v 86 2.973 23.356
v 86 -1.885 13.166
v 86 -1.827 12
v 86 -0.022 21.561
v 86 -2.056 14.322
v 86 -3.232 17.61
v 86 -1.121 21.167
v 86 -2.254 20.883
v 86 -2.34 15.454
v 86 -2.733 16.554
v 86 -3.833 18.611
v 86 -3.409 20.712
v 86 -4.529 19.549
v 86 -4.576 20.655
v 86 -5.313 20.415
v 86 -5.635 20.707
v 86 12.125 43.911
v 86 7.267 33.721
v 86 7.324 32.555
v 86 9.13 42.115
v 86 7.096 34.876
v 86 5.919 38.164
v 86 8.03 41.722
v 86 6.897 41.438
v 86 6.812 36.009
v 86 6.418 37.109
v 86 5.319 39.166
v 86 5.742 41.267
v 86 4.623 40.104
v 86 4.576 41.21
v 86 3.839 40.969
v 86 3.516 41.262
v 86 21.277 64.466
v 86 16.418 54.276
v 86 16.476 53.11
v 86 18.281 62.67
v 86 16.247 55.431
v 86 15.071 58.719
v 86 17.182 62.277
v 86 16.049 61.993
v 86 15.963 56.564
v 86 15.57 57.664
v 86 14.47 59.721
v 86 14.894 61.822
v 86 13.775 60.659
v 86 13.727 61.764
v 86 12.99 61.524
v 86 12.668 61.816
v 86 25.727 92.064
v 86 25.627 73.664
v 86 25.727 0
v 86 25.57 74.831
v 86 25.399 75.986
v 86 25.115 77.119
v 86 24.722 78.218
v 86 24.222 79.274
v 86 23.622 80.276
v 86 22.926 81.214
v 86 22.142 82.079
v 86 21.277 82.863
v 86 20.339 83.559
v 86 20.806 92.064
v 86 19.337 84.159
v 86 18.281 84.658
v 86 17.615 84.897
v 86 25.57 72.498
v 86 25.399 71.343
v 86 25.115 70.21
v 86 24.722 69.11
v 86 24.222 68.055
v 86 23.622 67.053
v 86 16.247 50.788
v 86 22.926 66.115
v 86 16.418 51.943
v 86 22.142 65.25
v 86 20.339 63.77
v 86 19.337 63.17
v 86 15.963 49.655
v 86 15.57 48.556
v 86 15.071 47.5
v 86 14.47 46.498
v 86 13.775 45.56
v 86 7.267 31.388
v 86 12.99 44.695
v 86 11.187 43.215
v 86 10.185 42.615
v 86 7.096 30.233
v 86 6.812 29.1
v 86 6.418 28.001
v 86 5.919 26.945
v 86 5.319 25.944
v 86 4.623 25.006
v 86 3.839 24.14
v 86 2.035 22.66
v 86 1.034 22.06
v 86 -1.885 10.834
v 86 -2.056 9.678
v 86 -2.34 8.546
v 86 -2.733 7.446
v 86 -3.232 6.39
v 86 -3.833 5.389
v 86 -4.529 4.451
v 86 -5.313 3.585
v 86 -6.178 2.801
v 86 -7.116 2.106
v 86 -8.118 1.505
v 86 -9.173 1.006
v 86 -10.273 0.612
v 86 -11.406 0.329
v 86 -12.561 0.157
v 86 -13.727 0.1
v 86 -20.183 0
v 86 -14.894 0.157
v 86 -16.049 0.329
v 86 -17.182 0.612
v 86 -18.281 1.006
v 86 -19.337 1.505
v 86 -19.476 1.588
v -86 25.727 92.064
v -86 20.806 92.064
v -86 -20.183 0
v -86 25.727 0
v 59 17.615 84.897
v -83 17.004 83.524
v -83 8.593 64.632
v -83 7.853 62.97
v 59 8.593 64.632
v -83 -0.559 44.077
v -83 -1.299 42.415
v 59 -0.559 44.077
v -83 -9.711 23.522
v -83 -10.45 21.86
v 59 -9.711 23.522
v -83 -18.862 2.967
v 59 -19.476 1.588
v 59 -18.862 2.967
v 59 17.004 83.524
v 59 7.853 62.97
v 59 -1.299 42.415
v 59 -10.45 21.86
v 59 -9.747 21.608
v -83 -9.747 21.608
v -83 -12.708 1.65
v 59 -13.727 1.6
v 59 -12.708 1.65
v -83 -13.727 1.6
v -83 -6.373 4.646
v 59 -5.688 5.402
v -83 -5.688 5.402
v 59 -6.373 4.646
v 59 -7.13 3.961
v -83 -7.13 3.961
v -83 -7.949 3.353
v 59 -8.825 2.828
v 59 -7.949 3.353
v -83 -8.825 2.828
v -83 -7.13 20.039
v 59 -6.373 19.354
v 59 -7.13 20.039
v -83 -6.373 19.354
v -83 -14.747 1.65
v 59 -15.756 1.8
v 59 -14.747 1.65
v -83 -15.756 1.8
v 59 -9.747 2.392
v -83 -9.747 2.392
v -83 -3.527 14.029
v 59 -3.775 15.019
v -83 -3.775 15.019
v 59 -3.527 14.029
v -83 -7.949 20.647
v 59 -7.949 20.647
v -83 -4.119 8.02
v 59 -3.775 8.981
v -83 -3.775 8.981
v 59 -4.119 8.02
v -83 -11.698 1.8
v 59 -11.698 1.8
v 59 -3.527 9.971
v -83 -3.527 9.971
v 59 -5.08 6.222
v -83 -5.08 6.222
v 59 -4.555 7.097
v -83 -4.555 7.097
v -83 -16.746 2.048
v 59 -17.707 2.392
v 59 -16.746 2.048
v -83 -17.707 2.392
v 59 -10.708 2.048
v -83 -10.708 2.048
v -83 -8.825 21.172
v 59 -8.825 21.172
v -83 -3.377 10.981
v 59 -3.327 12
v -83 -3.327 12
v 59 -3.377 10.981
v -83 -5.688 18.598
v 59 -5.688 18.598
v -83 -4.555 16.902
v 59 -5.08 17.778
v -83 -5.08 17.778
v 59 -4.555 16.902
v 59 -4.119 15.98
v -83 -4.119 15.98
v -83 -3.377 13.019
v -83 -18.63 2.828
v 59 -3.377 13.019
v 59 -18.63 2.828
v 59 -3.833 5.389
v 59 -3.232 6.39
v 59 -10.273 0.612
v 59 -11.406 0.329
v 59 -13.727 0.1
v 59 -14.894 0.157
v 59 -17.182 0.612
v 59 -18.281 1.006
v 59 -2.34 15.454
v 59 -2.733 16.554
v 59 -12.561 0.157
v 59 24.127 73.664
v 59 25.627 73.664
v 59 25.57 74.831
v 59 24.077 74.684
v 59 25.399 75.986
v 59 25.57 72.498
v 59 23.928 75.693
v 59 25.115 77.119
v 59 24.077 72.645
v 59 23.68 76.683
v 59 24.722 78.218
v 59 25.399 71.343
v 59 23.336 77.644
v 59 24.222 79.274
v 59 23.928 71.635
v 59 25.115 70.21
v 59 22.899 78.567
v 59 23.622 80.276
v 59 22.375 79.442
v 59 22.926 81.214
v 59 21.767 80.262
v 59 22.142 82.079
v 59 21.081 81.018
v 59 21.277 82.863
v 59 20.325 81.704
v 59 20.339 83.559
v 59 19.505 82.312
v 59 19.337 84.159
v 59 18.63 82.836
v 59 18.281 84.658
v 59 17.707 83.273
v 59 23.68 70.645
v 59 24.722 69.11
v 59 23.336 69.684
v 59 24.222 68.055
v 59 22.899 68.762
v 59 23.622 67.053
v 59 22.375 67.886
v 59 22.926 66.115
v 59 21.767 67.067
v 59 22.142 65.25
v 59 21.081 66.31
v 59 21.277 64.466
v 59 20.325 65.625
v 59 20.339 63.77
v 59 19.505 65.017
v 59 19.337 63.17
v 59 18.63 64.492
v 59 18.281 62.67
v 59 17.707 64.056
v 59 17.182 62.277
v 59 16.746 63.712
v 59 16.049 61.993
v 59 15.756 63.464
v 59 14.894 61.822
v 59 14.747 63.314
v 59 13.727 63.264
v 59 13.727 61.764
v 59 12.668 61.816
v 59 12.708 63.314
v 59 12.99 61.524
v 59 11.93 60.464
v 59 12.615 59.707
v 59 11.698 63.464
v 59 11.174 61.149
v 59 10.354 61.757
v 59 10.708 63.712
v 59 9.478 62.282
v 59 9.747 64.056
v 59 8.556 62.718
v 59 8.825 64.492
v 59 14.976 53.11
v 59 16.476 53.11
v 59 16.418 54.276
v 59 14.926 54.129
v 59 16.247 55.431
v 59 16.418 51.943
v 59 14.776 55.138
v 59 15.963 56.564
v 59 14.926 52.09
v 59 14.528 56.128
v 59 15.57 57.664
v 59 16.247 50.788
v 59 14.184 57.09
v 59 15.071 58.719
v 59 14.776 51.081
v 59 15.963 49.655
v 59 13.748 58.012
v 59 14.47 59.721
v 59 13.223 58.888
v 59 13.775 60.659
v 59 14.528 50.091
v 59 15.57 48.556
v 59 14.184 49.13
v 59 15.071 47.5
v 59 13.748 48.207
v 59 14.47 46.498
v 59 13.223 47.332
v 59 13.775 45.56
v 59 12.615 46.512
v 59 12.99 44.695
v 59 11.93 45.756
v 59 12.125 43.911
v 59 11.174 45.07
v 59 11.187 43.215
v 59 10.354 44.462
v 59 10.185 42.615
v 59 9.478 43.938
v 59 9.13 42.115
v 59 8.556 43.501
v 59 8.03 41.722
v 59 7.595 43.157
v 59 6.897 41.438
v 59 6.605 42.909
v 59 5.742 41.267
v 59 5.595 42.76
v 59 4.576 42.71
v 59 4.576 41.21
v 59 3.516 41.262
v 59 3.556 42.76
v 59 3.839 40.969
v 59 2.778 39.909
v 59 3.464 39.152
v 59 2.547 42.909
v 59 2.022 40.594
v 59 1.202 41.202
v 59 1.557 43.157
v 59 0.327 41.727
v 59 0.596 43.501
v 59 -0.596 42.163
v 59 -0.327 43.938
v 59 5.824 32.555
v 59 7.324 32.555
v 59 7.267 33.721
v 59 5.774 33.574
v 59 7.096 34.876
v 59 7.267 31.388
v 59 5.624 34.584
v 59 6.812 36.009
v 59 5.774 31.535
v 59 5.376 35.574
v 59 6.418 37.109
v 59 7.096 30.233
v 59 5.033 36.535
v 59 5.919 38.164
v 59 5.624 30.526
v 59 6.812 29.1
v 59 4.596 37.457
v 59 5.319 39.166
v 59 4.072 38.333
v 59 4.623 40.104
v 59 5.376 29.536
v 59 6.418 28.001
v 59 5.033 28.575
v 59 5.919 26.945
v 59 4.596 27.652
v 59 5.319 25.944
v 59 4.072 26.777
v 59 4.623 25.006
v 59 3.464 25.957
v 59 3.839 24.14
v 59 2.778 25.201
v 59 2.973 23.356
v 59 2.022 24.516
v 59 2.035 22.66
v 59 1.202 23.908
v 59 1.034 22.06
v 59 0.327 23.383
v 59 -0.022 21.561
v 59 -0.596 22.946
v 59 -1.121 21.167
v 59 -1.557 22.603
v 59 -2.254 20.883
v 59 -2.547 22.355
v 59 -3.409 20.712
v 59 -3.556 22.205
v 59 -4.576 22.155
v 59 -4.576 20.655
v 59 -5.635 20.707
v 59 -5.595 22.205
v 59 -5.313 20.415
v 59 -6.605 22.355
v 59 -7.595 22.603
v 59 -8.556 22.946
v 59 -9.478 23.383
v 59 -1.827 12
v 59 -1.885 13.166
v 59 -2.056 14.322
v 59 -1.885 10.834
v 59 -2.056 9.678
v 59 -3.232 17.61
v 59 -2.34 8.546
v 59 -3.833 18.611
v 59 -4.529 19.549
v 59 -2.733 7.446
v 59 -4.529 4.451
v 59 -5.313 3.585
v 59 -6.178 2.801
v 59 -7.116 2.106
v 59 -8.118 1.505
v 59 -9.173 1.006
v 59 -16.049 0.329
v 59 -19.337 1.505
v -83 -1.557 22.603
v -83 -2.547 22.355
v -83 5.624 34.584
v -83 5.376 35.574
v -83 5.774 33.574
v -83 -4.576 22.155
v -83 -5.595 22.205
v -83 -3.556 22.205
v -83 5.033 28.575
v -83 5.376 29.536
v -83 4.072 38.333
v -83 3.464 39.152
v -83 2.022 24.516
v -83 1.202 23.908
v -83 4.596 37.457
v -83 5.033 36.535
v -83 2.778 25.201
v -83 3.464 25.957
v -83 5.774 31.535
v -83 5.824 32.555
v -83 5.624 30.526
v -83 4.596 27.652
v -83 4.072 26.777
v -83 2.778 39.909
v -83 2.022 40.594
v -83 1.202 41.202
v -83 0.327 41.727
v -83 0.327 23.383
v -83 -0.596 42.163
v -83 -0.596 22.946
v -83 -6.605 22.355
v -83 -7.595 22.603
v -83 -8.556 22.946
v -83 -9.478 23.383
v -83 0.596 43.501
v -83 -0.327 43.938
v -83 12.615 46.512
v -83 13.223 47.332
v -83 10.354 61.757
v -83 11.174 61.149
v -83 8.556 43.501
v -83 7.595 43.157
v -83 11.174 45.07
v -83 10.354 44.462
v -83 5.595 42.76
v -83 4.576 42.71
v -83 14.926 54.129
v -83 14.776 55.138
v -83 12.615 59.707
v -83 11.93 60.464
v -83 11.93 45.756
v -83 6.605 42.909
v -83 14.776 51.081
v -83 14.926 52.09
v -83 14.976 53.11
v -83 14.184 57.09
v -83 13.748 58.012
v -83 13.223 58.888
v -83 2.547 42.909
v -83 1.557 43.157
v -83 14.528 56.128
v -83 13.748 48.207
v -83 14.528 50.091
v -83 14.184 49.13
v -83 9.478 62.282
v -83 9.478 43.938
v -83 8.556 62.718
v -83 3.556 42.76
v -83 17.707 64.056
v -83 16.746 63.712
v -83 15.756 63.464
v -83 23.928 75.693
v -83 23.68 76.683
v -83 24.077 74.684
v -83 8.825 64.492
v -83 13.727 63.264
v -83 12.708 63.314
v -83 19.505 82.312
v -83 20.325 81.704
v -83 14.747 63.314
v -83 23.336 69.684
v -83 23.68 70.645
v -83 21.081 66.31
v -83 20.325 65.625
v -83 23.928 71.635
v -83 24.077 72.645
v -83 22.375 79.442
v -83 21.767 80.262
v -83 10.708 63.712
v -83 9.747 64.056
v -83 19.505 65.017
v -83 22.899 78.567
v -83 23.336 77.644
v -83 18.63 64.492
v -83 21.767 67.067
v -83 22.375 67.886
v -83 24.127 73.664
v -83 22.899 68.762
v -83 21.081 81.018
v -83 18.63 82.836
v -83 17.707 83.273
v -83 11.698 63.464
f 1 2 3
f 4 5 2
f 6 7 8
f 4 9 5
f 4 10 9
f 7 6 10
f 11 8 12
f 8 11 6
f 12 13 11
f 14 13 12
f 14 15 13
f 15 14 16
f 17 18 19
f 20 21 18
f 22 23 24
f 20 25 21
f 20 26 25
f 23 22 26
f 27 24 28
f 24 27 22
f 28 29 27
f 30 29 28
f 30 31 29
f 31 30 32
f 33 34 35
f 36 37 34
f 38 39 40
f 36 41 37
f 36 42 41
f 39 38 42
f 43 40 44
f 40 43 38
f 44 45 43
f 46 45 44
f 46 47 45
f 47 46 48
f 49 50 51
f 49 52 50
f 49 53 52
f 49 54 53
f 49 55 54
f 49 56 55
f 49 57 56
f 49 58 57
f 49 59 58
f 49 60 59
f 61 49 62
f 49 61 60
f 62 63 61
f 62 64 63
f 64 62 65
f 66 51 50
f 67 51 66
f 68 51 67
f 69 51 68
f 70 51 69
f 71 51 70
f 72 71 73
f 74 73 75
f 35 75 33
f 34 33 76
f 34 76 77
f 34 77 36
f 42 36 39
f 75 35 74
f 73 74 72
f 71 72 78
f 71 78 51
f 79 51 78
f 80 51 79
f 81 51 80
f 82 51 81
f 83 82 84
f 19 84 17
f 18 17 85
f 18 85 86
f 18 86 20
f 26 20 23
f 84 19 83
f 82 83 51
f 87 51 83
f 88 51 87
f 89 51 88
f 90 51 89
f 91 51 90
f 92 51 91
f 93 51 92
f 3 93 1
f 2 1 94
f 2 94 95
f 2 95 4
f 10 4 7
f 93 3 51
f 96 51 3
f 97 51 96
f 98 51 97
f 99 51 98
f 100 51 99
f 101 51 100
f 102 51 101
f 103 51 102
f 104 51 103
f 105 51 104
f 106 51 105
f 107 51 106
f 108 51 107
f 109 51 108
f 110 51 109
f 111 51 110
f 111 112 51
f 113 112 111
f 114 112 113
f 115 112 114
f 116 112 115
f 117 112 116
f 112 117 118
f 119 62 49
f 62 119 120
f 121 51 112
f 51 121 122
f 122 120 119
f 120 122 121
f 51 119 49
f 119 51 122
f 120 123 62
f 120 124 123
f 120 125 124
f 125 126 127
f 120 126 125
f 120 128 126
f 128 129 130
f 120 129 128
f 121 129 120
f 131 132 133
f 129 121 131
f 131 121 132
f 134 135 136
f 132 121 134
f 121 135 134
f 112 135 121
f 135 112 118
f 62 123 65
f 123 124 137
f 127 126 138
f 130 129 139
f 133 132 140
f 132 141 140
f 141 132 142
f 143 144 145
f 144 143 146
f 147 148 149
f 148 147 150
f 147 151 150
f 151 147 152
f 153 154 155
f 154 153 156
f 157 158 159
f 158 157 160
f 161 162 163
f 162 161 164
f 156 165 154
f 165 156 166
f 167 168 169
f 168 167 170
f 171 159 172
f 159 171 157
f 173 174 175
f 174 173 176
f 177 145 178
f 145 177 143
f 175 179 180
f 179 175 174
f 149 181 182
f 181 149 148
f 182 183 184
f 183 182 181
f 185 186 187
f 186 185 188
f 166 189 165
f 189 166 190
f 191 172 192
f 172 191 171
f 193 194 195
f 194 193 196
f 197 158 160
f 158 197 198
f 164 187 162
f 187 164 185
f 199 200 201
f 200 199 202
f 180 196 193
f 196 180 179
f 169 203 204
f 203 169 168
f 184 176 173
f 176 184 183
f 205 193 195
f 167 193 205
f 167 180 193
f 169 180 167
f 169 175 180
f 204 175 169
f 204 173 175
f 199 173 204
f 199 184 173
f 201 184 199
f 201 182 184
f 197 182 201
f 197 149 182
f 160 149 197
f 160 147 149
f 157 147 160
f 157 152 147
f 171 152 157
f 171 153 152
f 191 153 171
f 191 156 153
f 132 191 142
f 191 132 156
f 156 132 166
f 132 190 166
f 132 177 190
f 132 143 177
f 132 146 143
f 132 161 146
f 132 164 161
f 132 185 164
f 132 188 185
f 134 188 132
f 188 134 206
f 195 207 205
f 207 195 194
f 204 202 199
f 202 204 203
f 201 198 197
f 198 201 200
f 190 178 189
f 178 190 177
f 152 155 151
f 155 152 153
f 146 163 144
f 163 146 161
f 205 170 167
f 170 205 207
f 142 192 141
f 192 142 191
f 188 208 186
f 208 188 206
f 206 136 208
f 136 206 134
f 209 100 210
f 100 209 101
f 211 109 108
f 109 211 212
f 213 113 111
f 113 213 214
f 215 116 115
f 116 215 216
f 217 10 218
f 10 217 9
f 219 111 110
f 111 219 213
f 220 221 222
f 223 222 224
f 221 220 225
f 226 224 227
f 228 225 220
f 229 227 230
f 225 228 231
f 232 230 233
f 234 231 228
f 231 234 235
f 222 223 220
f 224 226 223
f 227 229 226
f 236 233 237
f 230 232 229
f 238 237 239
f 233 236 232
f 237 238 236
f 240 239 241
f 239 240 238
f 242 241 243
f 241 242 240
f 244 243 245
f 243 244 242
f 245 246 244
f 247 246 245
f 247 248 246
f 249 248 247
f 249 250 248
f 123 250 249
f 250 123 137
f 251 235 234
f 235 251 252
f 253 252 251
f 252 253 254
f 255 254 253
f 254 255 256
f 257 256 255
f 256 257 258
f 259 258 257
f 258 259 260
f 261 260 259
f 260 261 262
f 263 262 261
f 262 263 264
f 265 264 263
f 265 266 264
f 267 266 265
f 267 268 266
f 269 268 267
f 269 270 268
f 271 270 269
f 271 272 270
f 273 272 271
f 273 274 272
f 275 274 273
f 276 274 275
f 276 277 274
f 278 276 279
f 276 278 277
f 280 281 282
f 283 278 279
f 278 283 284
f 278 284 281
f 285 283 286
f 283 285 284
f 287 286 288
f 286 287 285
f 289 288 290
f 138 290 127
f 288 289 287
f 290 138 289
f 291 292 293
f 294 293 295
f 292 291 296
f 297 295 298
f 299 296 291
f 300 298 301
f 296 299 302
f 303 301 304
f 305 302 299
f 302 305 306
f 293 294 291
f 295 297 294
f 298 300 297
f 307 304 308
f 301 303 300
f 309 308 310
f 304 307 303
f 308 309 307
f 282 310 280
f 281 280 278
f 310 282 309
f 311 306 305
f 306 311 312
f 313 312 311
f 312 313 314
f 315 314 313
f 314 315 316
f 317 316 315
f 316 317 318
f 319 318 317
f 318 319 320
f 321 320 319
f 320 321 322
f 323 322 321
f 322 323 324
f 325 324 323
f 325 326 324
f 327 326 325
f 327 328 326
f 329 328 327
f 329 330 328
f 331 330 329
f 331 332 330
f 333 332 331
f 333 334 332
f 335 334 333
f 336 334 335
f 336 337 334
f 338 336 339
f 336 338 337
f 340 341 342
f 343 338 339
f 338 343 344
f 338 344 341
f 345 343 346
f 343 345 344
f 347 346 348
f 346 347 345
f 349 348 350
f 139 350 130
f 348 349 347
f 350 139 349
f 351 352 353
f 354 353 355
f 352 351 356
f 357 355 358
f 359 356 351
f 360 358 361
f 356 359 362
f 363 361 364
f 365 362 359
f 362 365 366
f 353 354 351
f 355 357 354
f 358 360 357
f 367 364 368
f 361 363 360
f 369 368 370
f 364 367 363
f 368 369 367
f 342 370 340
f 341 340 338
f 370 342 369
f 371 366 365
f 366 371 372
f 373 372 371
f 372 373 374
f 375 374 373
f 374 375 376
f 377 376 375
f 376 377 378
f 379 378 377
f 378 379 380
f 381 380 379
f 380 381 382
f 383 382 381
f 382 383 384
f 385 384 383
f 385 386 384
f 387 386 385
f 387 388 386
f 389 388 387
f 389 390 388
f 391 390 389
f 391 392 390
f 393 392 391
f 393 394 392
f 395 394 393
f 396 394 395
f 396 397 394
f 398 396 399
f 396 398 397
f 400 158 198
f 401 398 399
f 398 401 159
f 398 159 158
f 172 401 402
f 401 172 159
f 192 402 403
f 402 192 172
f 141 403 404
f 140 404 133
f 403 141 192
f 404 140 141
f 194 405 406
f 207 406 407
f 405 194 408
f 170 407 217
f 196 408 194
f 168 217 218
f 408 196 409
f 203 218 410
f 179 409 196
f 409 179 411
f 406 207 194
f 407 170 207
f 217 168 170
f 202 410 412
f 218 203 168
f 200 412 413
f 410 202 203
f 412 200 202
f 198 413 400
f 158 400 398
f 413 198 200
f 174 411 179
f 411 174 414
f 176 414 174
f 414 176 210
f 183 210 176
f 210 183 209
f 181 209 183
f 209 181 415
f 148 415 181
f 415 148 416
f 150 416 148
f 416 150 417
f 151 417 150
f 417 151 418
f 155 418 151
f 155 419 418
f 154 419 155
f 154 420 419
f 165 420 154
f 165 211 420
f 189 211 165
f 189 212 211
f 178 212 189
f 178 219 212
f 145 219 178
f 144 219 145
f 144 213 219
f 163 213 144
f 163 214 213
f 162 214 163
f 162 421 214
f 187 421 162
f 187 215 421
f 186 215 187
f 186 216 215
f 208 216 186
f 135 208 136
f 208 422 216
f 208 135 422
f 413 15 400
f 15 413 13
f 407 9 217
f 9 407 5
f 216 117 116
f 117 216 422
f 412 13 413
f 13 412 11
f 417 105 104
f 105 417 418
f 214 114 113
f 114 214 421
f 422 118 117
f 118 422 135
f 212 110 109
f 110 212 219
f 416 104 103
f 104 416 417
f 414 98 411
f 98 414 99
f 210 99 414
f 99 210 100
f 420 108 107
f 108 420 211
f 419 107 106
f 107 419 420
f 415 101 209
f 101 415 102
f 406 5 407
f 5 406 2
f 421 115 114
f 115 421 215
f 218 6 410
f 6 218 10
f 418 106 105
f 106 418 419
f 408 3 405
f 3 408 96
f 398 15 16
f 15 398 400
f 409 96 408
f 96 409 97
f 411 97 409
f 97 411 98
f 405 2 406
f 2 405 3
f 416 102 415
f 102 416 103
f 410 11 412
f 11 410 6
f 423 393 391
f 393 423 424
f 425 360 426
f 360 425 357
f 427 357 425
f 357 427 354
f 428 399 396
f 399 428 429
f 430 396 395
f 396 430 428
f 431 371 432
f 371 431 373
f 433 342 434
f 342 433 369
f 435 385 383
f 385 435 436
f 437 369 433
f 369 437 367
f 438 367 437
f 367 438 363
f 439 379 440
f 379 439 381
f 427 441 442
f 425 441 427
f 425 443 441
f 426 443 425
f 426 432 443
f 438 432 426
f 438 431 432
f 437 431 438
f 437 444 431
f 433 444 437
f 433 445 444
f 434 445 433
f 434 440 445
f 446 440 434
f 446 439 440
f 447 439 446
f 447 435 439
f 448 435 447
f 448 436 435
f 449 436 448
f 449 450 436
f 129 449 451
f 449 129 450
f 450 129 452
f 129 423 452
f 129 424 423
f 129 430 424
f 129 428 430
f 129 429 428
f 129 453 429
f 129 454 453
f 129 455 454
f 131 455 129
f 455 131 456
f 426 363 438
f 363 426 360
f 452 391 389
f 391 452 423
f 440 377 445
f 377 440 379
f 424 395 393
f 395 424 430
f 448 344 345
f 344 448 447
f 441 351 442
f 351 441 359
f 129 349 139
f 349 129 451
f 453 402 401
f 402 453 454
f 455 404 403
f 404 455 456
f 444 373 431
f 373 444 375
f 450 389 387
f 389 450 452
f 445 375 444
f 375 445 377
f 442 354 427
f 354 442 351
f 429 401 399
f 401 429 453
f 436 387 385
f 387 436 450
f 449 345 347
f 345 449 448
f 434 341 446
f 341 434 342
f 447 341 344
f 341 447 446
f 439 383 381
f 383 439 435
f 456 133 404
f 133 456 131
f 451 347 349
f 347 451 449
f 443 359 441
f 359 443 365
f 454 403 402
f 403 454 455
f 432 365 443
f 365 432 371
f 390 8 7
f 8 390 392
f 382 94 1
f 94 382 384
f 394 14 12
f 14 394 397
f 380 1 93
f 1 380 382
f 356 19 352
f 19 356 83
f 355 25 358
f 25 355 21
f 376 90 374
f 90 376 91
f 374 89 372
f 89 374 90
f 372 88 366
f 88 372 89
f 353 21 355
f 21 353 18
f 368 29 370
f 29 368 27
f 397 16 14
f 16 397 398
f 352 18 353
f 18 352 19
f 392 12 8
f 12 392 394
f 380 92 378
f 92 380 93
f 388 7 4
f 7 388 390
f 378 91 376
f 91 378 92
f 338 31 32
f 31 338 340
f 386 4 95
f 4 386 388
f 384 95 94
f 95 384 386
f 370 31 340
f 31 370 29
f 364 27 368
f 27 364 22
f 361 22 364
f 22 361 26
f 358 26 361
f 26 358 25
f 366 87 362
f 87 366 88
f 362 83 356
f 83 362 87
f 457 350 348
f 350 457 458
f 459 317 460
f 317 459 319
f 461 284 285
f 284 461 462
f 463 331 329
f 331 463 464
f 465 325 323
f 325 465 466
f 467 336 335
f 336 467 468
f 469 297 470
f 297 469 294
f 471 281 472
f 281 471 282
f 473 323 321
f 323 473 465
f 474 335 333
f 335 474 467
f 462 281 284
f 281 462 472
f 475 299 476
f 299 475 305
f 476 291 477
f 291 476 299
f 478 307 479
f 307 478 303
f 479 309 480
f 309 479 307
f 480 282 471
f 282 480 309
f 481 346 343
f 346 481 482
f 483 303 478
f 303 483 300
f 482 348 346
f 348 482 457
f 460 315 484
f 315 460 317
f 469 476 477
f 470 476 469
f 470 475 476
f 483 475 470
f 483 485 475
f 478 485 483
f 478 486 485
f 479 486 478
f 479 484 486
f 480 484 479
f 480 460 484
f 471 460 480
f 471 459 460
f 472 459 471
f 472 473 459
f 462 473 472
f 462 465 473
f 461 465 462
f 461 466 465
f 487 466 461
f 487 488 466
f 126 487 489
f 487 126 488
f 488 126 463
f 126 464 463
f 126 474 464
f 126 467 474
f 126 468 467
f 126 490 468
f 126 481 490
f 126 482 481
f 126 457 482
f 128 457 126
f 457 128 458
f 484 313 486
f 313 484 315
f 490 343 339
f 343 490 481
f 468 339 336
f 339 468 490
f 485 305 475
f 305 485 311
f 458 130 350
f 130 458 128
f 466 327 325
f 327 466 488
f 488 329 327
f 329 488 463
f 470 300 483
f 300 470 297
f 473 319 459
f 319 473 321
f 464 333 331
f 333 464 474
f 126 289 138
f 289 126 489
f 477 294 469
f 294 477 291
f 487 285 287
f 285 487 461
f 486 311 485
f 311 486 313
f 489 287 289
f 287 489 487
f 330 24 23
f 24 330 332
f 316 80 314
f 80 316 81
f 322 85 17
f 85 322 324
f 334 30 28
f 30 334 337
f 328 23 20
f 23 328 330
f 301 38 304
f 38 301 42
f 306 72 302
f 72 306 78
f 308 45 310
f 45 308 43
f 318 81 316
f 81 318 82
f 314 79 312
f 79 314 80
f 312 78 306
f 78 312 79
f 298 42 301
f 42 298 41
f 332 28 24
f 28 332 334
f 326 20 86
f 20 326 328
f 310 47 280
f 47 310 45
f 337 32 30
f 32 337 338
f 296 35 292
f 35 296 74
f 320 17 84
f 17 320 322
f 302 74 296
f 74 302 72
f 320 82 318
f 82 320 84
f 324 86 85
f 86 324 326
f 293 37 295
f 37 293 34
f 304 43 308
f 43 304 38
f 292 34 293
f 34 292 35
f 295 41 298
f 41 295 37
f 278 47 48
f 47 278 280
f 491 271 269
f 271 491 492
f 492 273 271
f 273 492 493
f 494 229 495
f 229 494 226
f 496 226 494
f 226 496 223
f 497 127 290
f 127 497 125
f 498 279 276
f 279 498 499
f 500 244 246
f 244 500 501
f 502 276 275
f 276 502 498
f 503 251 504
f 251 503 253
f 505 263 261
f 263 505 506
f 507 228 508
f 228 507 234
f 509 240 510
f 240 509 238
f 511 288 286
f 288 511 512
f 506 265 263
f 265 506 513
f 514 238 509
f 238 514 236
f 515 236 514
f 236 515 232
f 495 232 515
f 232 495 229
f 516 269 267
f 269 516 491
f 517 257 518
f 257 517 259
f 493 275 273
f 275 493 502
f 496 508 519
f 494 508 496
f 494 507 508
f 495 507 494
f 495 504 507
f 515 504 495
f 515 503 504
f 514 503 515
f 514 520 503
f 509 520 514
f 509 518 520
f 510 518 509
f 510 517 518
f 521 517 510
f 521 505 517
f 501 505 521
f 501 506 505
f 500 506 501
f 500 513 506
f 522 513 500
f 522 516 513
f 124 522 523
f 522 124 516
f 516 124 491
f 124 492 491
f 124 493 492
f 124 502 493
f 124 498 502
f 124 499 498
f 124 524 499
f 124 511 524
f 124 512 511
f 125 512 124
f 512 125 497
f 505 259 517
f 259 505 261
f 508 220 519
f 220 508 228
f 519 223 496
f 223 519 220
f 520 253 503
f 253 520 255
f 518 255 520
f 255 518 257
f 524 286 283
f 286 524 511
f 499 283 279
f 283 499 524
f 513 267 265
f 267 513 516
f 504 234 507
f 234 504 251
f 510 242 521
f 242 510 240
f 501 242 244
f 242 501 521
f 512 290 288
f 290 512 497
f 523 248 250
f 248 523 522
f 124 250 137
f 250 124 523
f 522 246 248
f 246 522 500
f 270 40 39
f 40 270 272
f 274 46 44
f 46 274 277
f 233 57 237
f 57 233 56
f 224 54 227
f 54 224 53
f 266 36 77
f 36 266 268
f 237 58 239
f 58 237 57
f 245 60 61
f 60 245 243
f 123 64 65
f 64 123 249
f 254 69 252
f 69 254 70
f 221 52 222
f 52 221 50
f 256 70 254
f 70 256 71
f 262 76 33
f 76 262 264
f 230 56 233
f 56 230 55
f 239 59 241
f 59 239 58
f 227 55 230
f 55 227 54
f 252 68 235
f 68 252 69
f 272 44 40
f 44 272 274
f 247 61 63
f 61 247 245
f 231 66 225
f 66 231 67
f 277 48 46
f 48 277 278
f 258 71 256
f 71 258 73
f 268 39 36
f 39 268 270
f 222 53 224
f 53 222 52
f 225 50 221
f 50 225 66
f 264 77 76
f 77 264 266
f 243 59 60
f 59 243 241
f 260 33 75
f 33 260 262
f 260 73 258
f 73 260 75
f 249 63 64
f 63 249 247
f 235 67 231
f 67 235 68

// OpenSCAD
// file: common.scad
// ============================================================
// common.scad — shared parameters + modules for all designs
// LOCKED PEN SPECIFICATION (do not change)
// ============================================================
PEN_L = 165;      // pen length (mm)
PEN_A = 17;       // pen cross-section minor
PEN_B = 20;       // pen cross-section major (used as diameter envelope)
CLEAR = 0.4;      // fit clearance
WALL  = 1.6;      // minimum wall thickness

$fn = 64;

RCH = PEN_B/2 + CLEAR;   // = 10.4  channel radius
EPS = 0.01;

// --- open-top U trough cut, axis along X, centered at local origin -----------
// Removes a lower half-cylinder of radius r plus a full-width vertical slot
// upward, so the channel is open at the top (no ceiling -> no overhang).
module trough_cut(len, r=RCH, top=80) {
    union() {
        rotate([0,90,0]) cylinder(h=len, r=r, center=true);
        translate([0,0,top/2]) cube([len, 2*r, top], center=true); // slot upward
    }
}

// --- teardrop hole, axis along X, centered at local origin --------------------
// 45-degree self-supporting apex pointing +Z so a horizontal bore can print
// without support.
module teardrop_cut(len, r=RCH) {
    rotate([0,90,0])
        linear_extrude(height=len, center=true)
            union() {
                circle(r=r);
                polygon([[ 0.7071*r, 0.7071*r],
                         [ 0,         1.4142*r],
                         [-0.7071*r,  0.7071*r]]);
            }
}

// --- dial relief: widened open-top pocket at one channel end -----------------
// place at the +X or -X end of a channel so the dose dial clears / can be turned
module dial_relief(end_x, r=RCH+2.2, len=28, top=80) {
    translate([end_x, 0, 0]) trough_cut(len, r, top);
}
// file: rack_lib.scad
// rack_lib.scad — parametric reclined "toast-rack" for horizontal pens
// One module, driven by params, so each design iteration is an attributable
// change. Pens load from the top-front long face (radially into each groove);
// the ramp faces up so it prints support-free.
include <common.scad>

LBLK = PEN_L + 7;   // 172  overall body length (< 177.8), leaves end walls

// n       : number of pens
// phi     : ramp angle from horizontal (deg) — steeper = narrower + more top-load
// P       : along-ramp center spacing (>= 22.4 so pens don't intersect)
// lip     : grooves cut this far below the ramp plane -> snap-retention lip
// rr      : dial-relief radius (wider mouth at +X end)
// rlen    : dial-relief length along X
// endwall : solid wall thickness left at each end of a groove (containment)
// scoop   : add a thumb-scallop at the +X mouth for easy pen removal
// plate   : recess a nameplate/label pocket into the flat back face
// vials   : number of vertical vial wells bored into the back-top shelf (0 = none)
// flex     : number of relief gaps cut across each lip -> short spring-fingers
//            that flex outward, so a rigid pen snaps in with low force
module rack(n=4, phi=58, P=22.5, lip=2.5, rr=RCH+1.5, rlen=30,
            endwall=3, scoop=false, plate=false, vials=0, flex=0) {
    cph = cos(phi);
    sph = sin(phi);
    yc  = [for (i=[0:n-1]) (-(n-1)/2 + i) * P * cph];
    zc  = [for (i=[0:n-1]) (RCH + WALL) + i * P * sph];

    ymin = yc[0]   - RCH - WALL;
    ymax = yc[n-1] + RCH + WALL;
    Wb   = ymax - ymin;
    ycen = (ymax + ymin) / 2;
    Hbox = zc[n-1] + RCH + (vials > 0 ? 16 : 8);   // extra back-top stock for wells
    glen = LBLK - 2 * endwall;
    relief_cx = LBLK/2 - rlen/2 + 3;               // pokes ~3 past +X face
    big = 800;

    difference() {
        // ---- solid wedge: box with its top sheared off along the ramp plane ----
        difference() {
            translate([0, ycen, Hbox/2]) cube([LBLK, Wb, Hbox], center=true);
            translate([0, yc[0], zc[0] + lip])
                rotate([phi, 0, 0])
                    translate([0, 0, big/2]) cube([LBLK + 2, big, big], center=true);
        }

        // ---- grooves + dial relief (+ optional thumb scoop) ----
        for (i = [0:n-1]) {
            translate([0, yc[i], zc[i]])                       // main groove
                rotate([0,90,0]) cylinder(h=glen, r=RCH, center=true);
            translate([relief_cx, yc[i], zc[i]])               // dial relief mouth
                rotate([0,90,0]) cylinder(h=rlen, r=rr, center=true);
            if (scoop)
                translate([LBLK/2, yc[i] - 0.30*RCH, zc[i]]) sphere(r=7.5);
            // flex-relief gaps: notch the lip (above centerline) at intervals
            if (flex > 0)
                for (k = [1:flex])
                    translate([-LBLK/2 + k*LBLK/(flex+1), yc[i], zc[i] + RCH])
                        cube([3, 2*RCH + 6, 2*RCH], center=true);
        }

        // ---- optional vertical vial wells in the back-top shelf ----
        if (vials > 0) {
            wy = ymax - 9;                                     // along the back edge
            for (k = [0:vials-1]) {
                wx = -((vials-1)/2)*44 + k*44;
                translate([wx, wy, Hbox - 22 + EPS])
                    cylinder(h = 22, d = 14);
            }
        }

        // ---- optional nameplate recess in the flat back face ----
        if (plate)
            translate([0, ymax + EPS, zc[n-1]*0.5])
                rotate([90,0,0]) translate([0,0,-0.8])
                    linear_extrude(1.2) square([90, 16], center=true);
    }
}
// main file
// Iter4 — compact: steep 66deg recline, smallest desk footprint, 4 pens.
include <rack_lib.scad>
rack(n=4, phi=66, P=22.5, lip=2.5, endwall=3, scoop=true);
